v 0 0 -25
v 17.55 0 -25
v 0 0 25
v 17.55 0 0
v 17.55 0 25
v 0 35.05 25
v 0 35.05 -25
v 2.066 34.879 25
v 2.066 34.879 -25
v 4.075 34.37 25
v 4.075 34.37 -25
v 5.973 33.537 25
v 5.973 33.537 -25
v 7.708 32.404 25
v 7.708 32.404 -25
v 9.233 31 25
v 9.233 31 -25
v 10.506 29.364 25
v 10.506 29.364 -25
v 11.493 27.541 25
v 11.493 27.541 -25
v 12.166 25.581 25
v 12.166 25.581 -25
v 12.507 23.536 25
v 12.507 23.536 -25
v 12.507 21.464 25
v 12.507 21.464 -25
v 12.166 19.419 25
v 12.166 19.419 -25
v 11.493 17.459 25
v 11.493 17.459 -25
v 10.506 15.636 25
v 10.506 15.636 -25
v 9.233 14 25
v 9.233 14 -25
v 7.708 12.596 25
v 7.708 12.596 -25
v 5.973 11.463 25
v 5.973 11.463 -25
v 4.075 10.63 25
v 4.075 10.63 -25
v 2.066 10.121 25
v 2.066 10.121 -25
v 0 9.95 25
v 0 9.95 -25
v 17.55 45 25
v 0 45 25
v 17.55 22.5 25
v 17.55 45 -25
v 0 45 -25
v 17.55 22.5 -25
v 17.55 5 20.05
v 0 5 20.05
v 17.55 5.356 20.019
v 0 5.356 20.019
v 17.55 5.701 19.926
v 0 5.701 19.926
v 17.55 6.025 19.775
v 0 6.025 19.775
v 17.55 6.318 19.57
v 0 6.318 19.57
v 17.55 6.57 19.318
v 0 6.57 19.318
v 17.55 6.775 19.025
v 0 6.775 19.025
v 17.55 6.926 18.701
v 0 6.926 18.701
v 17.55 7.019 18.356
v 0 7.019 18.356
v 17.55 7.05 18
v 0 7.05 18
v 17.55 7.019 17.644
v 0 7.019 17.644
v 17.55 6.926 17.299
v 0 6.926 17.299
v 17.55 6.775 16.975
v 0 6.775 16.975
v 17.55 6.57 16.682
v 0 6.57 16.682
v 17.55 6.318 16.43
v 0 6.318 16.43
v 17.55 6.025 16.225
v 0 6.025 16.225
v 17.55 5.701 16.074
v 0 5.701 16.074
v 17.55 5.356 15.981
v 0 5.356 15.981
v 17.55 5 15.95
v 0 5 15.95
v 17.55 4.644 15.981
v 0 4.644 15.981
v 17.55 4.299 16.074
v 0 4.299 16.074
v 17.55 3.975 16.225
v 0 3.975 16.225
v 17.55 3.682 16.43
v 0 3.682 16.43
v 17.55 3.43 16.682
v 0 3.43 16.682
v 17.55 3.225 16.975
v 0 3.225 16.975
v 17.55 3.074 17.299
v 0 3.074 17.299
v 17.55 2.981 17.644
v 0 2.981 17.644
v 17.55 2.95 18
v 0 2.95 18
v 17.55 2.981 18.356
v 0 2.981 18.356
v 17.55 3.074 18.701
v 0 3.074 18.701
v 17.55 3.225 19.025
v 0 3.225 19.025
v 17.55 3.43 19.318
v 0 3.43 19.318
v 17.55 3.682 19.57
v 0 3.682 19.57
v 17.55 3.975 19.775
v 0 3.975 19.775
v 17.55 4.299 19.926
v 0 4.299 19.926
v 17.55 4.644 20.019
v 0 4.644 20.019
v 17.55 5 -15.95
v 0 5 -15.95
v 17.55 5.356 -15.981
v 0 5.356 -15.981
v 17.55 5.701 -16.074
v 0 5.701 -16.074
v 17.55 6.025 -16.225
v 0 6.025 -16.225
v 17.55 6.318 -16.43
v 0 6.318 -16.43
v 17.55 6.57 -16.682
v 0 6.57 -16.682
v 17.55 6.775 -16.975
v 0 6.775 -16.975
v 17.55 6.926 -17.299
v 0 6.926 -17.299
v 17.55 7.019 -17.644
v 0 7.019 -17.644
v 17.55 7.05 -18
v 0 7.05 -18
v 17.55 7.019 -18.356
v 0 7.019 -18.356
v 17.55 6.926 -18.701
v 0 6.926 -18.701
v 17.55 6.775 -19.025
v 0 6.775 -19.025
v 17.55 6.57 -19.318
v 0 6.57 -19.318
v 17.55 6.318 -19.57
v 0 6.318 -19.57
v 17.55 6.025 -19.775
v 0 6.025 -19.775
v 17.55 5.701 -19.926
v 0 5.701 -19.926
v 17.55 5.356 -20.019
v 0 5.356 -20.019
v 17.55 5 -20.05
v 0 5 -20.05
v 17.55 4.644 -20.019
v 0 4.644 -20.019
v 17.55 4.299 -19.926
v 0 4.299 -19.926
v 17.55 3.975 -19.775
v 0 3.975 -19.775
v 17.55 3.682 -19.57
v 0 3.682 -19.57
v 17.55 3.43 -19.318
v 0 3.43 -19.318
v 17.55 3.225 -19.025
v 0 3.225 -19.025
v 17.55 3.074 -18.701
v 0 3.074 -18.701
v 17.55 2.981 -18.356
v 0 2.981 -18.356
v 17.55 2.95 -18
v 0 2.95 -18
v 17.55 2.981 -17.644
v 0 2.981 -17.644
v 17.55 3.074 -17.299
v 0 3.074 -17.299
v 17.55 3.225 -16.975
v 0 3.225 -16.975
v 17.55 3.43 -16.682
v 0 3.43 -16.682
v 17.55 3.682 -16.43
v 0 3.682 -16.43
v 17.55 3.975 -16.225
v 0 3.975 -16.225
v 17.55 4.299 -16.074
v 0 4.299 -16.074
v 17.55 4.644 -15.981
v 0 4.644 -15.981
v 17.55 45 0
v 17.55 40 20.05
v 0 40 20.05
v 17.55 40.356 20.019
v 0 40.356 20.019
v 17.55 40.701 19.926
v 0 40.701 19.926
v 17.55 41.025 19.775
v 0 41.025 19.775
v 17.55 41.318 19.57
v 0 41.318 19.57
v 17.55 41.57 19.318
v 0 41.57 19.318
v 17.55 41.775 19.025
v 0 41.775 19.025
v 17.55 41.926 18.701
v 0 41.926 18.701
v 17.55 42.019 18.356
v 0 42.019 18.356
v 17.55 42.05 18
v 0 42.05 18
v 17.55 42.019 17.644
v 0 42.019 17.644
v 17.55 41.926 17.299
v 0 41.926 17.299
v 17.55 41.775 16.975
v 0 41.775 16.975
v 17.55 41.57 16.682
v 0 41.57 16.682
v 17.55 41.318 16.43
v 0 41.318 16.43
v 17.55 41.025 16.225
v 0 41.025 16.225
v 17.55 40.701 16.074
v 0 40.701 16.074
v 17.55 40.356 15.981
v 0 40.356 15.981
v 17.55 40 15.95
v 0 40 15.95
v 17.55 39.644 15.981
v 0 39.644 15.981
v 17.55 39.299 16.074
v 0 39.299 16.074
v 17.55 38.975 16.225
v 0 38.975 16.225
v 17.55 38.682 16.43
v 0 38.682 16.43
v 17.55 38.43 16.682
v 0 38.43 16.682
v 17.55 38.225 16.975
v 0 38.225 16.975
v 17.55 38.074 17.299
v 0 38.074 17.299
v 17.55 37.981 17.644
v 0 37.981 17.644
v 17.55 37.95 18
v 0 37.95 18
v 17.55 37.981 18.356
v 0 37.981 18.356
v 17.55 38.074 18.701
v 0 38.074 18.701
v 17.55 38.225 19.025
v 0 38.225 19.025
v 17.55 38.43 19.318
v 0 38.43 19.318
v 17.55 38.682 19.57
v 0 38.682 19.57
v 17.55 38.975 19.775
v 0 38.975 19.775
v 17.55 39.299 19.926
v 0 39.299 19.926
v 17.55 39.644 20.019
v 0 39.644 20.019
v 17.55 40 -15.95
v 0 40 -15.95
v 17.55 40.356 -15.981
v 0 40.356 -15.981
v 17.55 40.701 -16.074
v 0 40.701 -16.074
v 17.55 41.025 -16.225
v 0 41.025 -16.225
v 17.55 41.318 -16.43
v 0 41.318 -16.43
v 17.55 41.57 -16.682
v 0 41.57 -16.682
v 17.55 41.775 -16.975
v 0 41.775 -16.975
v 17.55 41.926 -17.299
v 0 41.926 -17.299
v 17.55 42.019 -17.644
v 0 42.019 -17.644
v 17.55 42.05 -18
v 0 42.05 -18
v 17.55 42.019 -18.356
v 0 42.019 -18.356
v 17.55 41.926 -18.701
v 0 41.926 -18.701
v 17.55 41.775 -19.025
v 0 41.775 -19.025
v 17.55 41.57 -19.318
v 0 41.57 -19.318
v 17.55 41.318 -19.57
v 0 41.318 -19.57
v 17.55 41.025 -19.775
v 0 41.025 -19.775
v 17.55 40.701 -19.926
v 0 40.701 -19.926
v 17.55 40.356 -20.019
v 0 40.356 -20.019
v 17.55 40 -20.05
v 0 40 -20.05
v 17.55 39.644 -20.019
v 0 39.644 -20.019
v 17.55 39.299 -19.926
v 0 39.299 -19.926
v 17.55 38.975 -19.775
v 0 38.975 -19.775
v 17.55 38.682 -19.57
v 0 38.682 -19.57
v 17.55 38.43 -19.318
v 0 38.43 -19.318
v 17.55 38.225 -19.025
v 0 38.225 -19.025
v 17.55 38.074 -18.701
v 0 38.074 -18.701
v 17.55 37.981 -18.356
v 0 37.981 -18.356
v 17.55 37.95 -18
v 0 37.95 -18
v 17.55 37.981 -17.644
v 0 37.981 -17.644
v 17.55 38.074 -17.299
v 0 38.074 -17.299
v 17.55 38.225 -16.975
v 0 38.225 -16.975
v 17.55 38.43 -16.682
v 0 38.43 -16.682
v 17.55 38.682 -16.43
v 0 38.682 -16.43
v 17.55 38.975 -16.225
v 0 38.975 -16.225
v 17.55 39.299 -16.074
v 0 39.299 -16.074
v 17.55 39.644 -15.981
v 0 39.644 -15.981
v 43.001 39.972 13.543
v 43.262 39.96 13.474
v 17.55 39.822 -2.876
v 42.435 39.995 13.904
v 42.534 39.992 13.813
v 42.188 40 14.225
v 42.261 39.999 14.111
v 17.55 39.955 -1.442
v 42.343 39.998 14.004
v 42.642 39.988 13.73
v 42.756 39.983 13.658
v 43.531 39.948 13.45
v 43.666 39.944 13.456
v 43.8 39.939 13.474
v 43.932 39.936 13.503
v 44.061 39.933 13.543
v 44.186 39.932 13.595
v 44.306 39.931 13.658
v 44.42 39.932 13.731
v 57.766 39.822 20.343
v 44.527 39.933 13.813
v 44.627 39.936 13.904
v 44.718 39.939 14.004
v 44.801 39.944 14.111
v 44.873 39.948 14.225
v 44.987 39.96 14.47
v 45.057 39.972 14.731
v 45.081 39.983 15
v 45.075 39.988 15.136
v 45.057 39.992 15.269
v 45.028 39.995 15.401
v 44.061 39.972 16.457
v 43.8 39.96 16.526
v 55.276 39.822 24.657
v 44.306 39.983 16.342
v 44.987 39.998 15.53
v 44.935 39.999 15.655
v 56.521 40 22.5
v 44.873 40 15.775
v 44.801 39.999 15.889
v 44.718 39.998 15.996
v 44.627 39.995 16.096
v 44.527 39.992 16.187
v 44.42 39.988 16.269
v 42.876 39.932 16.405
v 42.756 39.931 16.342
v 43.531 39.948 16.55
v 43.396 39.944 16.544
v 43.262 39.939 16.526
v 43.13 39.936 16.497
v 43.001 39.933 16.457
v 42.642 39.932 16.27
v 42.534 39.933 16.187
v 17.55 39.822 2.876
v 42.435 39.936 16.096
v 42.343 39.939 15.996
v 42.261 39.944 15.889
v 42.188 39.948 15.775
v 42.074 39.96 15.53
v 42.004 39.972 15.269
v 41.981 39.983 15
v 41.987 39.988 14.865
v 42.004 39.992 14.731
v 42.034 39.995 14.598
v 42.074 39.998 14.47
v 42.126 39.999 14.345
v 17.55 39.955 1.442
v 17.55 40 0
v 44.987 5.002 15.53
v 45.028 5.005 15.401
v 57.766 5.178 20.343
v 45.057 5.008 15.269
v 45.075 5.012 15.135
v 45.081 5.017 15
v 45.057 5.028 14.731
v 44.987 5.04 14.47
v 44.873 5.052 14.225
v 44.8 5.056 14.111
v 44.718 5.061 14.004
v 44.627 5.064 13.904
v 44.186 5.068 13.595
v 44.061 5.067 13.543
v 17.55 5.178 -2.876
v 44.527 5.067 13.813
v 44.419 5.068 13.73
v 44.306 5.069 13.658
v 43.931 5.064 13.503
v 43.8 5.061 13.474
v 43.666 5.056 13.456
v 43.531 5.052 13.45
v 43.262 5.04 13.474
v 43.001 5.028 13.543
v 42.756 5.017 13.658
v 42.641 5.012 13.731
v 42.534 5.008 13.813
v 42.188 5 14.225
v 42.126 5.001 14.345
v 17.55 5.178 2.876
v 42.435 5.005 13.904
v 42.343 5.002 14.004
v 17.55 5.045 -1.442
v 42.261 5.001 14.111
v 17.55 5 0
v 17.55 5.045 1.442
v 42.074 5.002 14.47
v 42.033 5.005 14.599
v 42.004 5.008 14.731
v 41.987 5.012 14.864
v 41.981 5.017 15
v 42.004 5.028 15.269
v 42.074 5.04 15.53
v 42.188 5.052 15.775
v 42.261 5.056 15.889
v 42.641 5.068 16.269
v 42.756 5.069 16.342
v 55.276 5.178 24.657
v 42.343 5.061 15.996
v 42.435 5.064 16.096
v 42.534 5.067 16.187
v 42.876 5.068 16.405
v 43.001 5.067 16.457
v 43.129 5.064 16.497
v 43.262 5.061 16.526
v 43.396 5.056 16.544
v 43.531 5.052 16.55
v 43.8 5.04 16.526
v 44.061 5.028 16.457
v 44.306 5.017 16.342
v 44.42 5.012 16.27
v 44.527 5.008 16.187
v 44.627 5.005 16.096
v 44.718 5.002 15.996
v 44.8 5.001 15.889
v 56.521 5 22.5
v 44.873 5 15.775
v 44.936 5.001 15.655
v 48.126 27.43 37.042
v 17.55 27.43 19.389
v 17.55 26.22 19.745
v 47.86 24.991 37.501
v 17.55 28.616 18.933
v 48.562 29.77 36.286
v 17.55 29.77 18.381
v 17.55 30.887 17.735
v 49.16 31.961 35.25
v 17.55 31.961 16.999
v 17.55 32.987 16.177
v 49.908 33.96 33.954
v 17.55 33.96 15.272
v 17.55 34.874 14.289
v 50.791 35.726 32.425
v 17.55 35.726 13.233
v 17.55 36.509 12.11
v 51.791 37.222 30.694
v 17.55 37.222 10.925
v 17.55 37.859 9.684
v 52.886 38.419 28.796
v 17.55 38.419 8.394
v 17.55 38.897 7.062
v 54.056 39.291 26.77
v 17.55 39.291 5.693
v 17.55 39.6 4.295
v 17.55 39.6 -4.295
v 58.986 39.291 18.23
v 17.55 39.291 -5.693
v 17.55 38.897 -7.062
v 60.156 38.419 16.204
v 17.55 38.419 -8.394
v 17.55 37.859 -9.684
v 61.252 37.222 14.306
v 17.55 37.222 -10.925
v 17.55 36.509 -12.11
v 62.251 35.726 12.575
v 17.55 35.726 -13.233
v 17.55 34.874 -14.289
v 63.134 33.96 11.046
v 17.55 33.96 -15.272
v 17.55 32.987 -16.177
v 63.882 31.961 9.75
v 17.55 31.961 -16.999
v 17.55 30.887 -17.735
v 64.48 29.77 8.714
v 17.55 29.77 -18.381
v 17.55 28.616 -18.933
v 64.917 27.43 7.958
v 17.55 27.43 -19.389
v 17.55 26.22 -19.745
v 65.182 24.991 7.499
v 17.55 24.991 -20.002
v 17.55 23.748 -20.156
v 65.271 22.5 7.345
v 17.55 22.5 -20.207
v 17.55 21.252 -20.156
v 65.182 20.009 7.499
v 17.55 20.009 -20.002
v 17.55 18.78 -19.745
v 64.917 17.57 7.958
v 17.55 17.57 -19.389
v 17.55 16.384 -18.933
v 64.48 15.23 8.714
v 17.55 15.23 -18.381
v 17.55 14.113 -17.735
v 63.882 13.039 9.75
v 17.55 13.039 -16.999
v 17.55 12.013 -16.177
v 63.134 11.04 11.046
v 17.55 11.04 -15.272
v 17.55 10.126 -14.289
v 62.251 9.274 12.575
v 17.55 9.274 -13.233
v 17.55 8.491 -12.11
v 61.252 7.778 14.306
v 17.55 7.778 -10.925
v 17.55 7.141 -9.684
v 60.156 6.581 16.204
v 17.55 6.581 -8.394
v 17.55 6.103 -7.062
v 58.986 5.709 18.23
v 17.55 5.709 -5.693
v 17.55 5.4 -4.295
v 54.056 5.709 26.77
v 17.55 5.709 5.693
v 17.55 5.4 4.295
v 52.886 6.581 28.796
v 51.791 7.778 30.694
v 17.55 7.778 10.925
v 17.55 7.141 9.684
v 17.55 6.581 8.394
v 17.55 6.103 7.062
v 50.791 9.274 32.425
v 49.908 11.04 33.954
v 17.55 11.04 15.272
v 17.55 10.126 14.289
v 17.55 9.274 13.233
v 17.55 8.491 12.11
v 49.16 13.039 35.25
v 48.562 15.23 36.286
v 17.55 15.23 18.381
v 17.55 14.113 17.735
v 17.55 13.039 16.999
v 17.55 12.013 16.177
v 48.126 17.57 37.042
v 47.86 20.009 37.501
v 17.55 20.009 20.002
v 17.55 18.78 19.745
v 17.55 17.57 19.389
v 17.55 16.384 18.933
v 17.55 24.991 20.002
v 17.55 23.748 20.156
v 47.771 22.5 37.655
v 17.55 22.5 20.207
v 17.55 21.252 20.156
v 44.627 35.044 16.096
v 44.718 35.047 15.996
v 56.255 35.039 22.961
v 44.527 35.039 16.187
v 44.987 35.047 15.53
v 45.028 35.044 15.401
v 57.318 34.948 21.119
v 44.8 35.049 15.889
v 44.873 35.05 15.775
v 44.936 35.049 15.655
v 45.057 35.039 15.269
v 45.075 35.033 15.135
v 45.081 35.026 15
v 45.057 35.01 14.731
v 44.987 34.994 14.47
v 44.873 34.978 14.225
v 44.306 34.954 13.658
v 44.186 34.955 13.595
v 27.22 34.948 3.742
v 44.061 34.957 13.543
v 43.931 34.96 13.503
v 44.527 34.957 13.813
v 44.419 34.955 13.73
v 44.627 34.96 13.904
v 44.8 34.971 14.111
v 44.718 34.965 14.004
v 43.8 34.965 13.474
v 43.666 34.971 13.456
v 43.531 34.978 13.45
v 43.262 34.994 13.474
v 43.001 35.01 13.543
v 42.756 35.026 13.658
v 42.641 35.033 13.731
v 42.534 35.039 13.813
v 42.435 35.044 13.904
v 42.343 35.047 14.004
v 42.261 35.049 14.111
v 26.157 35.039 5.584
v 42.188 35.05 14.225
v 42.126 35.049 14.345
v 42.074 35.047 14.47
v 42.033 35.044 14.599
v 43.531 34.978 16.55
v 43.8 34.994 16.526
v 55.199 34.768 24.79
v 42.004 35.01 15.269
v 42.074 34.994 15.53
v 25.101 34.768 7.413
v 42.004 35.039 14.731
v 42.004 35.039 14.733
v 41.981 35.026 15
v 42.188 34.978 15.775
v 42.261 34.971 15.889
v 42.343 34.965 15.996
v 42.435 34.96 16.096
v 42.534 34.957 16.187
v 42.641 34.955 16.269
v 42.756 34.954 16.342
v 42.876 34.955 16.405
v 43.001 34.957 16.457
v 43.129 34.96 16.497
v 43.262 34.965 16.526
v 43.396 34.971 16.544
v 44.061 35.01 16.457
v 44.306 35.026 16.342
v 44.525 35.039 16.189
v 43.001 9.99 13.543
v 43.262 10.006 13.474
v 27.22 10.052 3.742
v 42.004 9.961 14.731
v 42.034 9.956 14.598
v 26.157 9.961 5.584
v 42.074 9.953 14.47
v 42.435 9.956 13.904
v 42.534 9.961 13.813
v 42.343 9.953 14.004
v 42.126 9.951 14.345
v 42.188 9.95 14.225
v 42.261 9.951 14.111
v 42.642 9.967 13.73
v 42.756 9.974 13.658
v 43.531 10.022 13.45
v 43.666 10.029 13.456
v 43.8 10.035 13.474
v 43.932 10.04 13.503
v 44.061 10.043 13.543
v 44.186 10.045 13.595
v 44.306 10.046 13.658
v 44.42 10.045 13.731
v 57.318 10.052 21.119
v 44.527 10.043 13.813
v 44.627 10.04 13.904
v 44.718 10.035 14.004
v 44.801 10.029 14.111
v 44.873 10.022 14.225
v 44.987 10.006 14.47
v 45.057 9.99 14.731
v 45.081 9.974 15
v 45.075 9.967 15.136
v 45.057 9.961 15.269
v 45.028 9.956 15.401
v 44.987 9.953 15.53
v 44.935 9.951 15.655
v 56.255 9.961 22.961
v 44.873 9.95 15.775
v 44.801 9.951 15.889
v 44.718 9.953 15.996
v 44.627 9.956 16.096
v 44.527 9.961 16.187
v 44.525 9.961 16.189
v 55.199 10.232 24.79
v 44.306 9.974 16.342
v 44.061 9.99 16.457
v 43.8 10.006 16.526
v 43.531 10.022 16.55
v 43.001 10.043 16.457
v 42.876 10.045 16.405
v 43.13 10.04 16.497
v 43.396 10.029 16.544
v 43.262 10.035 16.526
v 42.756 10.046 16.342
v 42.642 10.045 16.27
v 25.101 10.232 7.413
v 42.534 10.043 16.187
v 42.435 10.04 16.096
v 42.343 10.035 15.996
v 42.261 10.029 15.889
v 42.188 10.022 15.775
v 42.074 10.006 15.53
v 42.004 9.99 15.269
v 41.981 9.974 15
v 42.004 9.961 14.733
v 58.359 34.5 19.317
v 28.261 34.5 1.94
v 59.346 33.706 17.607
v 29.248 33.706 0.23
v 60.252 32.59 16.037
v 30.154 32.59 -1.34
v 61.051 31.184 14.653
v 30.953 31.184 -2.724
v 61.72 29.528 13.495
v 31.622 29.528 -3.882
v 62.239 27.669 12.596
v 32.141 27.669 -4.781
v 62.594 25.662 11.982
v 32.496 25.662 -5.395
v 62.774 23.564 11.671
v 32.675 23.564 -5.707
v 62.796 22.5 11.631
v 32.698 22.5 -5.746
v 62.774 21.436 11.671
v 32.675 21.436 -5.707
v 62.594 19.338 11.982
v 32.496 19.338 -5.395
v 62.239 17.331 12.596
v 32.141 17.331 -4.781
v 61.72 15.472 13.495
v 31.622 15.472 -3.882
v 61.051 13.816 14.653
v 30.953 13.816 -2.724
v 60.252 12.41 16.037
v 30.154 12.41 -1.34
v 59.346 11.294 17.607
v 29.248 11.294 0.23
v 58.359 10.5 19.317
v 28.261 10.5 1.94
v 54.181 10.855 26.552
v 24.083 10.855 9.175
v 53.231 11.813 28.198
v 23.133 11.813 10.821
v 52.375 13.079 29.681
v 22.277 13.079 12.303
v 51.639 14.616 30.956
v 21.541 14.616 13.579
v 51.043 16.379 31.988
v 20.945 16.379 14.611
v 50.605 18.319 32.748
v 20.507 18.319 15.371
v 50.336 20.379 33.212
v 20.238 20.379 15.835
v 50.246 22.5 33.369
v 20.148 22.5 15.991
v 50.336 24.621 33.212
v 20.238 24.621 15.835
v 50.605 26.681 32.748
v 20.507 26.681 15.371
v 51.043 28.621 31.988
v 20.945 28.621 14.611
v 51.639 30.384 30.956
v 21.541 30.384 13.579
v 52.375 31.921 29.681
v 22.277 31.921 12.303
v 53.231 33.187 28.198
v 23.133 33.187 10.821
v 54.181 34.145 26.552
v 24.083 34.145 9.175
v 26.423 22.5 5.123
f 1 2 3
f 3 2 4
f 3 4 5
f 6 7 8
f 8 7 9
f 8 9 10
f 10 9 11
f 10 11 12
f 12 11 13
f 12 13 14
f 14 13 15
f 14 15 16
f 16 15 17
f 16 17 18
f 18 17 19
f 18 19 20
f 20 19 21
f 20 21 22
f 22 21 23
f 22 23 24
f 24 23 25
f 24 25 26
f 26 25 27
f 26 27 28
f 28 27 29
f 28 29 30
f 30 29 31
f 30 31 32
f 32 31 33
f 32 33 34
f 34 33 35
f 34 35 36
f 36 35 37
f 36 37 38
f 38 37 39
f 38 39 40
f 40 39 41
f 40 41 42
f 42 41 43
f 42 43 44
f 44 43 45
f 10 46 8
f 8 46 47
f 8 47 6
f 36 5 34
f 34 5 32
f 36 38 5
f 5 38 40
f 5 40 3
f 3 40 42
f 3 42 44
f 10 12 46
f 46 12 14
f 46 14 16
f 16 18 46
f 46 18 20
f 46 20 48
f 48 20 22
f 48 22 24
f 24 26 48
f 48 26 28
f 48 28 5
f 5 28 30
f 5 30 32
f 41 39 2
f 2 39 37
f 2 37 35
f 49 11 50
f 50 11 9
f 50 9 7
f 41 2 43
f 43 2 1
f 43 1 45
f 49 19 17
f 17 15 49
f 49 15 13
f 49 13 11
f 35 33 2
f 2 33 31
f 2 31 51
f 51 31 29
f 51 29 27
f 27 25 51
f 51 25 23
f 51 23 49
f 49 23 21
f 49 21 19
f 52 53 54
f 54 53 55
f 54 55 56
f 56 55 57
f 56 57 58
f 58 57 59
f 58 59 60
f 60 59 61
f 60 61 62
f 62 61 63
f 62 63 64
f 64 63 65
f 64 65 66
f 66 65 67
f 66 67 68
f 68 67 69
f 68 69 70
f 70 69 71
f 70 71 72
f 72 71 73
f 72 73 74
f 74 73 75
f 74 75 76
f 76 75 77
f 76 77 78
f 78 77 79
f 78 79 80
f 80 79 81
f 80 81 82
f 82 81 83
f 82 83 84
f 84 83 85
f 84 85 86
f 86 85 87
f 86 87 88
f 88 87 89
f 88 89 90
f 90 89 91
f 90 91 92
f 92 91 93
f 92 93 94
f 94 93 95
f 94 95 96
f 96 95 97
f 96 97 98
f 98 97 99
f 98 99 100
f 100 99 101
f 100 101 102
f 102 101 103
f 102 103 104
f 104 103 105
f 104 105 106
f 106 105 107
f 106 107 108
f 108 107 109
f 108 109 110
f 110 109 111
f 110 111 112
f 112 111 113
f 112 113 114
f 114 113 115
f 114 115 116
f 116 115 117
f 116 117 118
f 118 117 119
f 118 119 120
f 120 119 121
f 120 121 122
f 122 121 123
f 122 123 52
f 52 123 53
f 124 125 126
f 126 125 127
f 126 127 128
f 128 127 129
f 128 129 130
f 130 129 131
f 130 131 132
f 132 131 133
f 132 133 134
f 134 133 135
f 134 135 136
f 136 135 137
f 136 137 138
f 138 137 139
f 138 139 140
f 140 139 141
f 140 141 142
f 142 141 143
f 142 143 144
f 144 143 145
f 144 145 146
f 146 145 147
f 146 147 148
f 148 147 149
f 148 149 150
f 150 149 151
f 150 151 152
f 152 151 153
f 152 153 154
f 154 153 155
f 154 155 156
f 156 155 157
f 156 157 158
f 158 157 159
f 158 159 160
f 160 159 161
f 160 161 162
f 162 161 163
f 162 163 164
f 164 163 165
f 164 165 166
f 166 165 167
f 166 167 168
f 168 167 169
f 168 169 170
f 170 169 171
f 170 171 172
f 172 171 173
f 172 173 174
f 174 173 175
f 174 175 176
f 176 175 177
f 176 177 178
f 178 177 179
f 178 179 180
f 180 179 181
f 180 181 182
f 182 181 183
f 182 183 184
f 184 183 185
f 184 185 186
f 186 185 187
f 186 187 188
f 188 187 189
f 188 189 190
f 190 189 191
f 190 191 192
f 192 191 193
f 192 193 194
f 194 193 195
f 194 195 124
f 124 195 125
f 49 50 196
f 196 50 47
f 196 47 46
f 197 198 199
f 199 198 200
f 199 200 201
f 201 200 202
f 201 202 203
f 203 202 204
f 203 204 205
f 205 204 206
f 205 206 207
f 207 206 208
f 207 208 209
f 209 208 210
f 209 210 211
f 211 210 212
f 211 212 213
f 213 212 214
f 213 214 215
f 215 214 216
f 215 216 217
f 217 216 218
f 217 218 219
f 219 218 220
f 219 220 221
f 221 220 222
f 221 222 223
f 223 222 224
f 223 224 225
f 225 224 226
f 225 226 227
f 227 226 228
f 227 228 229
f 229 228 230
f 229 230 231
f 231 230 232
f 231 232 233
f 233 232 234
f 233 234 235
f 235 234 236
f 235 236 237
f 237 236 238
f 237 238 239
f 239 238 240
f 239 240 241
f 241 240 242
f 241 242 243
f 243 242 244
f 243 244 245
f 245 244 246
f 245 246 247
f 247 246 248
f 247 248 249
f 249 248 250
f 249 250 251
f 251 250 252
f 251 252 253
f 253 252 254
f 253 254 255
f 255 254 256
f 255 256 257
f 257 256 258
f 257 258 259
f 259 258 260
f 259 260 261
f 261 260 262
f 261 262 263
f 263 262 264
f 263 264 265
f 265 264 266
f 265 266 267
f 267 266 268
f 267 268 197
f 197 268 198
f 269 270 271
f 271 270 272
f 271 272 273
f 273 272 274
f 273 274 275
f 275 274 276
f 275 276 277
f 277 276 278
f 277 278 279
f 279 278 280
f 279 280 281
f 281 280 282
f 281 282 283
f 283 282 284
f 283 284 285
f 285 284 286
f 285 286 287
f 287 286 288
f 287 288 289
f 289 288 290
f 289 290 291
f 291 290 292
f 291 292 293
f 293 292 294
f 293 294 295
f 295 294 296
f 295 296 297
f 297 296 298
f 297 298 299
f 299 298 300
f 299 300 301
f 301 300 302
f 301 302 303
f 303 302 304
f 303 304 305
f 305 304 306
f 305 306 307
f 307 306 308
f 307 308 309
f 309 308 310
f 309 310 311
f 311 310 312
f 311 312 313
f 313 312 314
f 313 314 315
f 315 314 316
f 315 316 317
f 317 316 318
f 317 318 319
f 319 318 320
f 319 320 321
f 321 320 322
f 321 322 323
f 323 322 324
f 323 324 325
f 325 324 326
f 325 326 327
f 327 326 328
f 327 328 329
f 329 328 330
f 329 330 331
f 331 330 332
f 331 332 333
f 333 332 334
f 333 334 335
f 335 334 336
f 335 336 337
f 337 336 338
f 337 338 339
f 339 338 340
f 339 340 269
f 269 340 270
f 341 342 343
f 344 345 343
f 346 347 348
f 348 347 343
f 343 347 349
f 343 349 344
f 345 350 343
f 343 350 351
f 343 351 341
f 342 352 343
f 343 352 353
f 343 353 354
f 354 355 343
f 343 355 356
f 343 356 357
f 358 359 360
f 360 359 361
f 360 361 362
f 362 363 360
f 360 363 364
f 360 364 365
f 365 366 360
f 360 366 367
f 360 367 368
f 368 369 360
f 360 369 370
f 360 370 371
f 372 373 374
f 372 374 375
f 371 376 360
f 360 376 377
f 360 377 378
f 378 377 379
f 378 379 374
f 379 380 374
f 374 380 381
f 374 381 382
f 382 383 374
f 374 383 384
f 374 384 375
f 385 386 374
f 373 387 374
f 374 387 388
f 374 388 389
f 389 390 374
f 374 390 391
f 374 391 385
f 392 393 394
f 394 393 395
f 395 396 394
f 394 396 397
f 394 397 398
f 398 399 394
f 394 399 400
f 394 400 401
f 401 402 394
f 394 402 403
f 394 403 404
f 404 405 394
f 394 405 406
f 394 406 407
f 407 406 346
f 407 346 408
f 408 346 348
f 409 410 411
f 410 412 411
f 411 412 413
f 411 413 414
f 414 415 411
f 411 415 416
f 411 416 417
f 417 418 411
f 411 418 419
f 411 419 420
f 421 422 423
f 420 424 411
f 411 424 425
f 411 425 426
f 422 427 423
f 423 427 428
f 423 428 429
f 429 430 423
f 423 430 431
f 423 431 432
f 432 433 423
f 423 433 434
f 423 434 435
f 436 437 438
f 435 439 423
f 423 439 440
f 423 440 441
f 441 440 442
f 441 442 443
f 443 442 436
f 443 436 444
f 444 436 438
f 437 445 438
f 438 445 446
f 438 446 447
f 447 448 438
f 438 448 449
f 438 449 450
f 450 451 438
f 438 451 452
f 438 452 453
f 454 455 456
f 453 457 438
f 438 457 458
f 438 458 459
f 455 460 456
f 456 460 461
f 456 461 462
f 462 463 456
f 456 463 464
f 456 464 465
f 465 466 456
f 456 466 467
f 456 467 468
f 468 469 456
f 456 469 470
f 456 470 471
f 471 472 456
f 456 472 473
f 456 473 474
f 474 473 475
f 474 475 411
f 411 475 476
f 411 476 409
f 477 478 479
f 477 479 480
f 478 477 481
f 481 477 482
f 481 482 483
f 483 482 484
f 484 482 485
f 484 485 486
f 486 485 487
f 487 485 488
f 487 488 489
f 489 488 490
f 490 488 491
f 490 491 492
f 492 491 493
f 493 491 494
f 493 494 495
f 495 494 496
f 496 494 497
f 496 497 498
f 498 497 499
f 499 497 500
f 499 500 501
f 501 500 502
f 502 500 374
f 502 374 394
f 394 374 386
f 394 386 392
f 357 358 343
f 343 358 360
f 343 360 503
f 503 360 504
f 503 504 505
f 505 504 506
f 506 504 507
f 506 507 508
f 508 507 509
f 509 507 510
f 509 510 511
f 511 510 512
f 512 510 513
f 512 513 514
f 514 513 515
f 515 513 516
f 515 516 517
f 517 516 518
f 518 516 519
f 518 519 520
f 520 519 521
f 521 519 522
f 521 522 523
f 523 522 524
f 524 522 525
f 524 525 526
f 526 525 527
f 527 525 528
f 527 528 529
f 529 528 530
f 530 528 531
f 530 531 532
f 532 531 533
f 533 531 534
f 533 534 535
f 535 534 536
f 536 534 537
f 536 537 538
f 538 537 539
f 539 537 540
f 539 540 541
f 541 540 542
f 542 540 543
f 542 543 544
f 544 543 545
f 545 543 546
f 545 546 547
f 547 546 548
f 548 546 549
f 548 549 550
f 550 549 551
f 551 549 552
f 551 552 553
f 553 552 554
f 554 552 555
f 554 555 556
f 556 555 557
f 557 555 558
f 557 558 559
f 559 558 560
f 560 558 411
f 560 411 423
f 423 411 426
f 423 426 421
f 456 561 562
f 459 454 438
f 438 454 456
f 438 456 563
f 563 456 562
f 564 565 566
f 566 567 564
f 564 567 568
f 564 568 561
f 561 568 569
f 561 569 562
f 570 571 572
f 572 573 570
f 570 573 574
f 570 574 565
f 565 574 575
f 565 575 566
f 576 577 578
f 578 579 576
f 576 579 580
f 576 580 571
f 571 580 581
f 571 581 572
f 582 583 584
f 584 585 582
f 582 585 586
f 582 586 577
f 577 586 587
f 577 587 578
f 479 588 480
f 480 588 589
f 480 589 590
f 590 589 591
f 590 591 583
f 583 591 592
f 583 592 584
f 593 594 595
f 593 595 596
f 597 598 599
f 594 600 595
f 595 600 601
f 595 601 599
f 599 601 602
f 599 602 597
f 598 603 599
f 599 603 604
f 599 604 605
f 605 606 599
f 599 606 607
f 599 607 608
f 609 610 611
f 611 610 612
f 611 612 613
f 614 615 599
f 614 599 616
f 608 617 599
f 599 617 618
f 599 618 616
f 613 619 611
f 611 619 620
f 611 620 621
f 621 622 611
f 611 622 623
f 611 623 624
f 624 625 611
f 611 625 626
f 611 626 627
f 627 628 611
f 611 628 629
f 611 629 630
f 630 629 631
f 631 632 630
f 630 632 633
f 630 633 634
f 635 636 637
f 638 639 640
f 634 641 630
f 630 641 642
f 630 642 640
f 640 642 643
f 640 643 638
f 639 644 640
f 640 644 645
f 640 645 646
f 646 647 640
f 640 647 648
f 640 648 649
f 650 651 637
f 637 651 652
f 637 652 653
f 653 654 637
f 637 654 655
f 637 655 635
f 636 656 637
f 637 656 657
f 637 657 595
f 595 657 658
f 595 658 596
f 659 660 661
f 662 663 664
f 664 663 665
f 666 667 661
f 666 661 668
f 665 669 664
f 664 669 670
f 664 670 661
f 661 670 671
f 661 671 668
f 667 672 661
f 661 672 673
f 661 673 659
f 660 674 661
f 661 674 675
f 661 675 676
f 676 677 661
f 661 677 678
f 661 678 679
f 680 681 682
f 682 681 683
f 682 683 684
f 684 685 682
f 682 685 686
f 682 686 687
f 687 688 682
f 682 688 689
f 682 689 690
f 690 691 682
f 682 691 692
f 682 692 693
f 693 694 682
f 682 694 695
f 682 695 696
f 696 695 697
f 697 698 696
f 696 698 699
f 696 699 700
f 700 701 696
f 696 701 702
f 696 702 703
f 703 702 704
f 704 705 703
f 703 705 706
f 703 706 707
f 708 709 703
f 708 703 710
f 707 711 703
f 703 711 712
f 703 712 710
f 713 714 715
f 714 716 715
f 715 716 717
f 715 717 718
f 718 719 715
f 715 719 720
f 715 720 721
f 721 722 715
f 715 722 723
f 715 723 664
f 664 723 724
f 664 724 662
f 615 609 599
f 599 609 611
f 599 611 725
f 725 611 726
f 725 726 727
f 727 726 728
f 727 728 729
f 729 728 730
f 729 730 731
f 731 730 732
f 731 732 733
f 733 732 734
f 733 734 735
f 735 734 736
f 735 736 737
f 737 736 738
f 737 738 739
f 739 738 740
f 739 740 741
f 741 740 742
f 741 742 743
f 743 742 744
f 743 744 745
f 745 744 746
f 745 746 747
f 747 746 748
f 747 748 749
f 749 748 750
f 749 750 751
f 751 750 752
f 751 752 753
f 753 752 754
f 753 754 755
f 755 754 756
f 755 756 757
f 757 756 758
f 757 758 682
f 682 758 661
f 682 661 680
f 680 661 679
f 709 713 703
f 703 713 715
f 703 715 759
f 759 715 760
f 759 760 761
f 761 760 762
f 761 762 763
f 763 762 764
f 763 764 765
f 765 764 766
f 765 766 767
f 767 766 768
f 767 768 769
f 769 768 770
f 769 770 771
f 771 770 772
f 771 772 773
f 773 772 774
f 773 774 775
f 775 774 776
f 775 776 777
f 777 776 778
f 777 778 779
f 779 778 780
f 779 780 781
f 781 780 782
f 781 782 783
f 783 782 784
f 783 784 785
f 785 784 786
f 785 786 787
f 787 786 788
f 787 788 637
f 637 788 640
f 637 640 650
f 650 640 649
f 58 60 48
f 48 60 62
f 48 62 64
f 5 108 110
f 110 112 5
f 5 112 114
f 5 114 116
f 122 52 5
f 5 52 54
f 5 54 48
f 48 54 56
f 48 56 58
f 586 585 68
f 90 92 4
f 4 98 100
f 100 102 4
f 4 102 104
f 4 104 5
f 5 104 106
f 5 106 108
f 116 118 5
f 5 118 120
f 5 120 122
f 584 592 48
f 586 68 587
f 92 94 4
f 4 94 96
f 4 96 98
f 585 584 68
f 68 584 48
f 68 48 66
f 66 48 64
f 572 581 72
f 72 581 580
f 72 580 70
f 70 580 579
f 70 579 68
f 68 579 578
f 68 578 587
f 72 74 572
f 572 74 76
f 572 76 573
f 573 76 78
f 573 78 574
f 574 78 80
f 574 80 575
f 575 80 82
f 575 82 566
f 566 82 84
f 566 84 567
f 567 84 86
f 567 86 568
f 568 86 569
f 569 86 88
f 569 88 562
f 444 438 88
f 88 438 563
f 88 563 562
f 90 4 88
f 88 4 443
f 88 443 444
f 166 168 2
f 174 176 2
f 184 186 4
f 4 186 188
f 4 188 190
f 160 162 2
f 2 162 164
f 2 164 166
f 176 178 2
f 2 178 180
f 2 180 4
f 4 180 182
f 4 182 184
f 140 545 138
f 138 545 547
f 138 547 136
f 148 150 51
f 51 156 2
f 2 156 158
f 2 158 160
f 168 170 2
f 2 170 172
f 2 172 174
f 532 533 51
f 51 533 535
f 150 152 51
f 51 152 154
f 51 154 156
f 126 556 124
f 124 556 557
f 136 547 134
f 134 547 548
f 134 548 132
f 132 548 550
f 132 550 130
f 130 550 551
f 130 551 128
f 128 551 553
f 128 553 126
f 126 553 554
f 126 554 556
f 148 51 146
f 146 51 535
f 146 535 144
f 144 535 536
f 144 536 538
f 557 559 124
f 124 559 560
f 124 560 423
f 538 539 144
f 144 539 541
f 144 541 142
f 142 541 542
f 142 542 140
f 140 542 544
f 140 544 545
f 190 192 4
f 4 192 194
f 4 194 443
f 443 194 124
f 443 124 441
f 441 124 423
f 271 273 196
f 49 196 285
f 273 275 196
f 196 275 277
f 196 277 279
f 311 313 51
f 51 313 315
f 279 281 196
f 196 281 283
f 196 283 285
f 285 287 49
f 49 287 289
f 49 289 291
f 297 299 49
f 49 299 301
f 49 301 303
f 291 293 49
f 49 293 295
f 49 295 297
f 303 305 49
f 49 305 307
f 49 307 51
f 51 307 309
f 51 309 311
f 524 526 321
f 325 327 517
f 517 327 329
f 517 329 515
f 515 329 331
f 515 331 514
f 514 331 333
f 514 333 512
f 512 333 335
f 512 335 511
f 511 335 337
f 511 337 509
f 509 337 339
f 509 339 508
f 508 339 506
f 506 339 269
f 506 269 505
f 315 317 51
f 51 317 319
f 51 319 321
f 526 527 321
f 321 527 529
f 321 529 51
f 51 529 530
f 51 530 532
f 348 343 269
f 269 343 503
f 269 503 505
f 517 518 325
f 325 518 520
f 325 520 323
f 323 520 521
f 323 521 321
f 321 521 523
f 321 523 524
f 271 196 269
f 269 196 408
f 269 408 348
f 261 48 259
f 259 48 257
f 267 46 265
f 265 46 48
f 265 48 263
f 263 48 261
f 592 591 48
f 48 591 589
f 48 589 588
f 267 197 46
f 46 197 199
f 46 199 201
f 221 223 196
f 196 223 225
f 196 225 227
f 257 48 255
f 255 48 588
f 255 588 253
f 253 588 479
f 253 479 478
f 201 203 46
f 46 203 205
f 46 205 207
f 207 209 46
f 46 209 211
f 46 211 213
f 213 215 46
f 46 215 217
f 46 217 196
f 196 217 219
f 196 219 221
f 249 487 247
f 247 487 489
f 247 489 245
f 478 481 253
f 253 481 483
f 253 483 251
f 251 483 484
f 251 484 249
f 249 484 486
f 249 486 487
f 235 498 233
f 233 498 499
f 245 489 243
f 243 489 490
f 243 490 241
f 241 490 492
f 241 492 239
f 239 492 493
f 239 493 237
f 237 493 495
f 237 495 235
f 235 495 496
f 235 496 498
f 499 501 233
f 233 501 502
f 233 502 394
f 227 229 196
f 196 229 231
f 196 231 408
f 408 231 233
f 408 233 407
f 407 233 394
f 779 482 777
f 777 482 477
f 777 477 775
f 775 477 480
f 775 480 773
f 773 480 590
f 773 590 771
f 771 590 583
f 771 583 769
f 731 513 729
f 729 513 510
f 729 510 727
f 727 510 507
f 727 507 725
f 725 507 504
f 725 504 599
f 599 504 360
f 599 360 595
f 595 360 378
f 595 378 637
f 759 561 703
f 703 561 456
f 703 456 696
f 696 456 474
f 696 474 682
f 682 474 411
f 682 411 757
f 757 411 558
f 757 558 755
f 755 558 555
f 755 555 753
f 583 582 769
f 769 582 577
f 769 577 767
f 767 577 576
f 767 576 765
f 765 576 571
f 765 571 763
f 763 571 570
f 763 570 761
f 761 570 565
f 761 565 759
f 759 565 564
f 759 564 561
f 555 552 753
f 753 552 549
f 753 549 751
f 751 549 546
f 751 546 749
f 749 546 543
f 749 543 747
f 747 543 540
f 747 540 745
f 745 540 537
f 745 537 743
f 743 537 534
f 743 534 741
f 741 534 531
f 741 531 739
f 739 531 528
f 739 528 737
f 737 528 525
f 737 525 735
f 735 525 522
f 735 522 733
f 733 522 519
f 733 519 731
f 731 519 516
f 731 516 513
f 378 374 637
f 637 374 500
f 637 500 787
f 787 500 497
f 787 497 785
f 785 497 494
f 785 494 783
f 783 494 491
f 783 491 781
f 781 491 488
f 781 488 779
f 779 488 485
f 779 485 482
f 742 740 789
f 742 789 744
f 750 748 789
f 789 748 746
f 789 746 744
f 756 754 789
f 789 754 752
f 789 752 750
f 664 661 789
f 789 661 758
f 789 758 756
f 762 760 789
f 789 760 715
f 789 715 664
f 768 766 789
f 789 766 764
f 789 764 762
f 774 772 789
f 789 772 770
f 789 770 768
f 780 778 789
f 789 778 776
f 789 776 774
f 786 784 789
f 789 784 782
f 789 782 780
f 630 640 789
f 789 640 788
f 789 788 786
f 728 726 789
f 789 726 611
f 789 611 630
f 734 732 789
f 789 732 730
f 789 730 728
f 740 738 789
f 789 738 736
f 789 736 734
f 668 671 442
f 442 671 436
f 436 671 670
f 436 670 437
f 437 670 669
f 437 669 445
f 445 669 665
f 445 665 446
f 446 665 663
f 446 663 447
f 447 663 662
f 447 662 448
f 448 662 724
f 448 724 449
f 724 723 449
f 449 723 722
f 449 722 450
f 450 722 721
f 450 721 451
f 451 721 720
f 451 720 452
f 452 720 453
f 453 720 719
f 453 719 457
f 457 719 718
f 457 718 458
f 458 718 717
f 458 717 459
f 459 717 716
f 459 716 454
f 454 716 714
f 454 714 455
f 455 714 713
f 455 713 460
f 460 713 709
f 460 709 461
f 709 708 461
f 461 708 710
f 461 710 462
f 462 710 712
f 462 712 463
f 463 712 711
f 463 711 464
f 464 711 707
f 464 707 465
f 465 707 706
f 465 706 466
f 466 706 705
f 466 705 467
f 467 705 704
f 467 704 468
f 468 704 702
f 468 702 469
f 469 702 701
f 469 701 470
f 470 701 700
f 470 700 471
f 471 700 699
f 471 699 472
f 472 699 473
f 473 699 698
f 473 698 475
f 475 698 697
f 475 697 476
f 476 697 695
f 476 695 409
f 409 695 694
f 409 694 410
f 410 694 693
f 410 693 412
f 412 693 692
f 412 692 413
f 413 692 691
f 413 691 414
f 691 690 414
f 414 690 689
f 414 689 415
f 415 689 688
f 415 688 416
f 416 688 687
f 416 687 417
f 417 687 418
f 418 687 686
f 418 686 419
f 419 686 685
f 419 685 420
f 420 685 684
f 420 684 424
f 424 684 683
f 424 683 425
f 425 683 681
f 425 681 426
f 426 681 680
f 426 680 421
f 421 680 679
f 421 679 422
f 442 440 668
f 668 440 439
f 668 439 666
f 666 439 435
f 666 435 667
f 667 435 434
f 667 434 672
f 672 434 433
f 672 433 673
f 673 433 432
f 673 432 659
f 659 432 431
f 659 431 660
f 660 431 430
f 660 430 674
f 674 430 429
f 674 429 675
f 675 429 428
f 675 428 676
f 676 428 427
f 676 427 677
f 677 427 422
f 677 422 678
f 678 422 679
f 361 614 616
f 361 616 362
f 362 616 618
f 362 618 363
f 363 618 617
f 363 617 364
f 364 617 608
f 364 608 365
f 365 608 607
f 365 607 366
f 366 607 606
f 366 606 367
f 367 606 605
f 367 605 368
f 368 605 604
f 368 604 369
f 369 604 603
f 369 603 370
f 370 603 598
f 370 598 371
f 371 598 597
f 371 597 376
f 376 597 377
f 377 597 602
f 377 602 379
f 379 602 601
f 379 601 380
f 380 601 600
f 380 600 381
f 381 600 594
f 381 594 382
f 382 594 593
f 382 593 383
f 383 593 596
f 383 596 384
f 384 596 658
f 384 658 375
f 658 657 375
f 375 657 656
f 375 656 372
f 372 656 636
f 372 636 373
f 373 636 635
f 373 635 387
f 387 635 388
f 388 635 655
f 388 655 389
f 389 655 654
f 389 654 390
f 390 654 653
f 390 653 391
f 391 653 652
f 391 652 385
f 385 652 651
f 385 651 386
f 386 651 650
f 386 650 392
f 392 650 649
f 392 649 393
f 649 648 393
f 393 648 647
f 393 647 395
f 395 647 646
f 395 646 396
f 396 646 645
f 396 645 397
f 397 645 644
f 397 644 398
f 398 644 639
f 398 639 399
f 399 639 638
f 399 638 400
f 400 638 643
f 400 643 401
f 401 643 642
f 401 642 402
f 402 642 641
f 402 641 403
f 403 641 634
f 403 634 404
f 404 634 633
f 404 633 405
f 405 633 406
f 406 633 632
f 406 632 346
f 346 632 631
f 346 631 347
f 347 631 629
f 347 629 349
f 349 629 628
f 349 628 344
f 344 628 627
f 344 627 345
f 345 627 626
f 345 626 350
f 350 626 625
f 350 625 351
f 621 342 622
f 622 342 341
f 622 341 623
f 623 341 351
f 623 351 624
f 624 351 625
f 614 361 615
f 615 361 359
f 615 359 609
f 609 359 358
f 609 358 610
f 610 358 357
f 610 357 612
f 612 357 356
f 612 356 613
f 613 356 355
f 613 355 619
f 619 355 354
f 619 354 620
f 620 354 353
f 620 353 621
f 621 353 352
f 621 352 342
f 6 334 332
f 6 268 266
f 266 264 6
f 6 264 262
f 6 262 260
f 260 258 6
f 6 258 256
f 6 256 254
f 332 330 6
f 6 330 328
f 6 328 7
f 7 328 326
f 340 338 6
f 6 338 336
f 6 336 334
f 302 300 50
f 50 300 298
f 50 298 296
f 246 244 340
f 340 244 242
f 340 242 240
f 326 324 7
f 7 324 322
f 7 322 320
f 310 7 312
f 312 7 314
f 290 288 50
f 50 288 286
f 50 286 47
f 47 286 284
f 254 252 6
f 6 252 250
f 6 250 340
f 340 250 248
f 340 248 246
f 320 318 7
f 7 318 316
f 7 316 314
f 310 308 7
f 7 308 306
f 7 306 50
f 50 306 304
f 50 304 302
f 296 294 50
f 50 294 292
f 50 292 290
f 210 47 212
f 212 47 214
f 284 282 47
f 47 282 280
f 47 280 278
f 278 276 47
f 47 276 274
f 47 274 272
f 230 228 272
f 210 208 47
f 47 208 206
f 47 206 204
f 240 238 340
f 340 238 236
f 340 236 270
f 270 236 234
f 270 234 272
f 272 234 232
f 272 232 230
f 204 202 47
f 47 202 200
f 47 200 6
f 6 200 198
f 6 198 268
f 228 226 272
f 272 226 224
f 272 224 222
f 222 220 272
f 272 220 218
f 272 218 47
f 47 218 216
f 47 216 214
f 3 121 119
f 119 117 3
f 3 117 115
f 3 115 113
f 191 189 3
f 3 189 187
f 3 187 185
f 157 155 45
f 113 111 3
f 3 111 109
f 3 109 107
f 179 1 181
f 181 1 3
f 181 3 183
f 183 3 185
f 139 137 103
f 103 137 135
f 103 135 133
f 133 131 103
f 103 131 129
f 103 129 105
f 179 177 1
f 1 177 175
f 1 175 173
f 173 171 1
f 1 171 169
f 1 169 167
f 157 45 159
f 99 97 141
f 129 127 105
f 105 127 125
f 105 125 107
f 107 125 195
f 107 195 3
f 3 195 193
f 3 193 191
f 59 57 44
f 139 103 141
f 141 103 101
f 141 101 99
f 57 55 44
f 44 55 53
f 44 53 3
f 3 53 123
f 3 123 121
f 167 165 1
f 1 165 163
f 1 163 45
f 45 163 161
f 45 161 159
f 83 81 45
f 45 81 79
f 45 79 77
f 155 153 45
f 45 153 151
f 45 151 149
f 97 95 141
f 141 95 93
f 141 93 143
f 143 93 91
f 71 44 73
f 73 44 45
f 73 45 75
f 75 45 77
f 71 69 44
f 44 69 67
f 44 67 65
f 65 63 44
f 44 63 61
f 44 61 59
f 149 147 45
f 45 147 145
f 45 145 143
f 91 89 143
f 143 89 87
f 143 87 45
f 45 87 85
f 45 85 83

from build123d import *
from build123d.topology import SkipClean

# Parameters (mm, degrees)
BOSS_EXTRUDE1_DEPTH             = 25
BOSS_EXTRUDE2_REACH             = 65.436
BOSS_EXTRUDE2_DIRECTION_2_DEPTH = 30
SKETCH9_R                       = 2.05
CUT_EXTRUDE3_DEPTH              = 35.1
BOSS_EXTRUDE5_REACH             = 63.632
SKETCH13_R                      = 1.55
CUT_EXTRUDE4_DEPTH              = 88.768186926
SKETCH16_W                      = 50
SKETCH16_H                      = 45
CUT_EXTRUDE5_DEPTH              = 17.55


with BuildPart() as part:
    # Sketch1 → Boss-Extrude1 (new, symmetric)
    with BuildSketch(Plane.XY):
        with BuildLine():
            Line((-17.55, 22.5), (-17.55, 0))
            Line((-17.55, 0), (17.55, 0))
            Line((17.55, 0), (17.55, 22.5))
            Line((17.55, 22.5), (12.55, 22.5))
            ThreePointArc((12.55, 22.5), (0, 9.95), (-12.55, 22.5))
            Line((-12.55, 22.5), (-17.55, 22.5))
        make_face()
    boss_extrude1 = extrude(amount=BOSS_EXTRUDE1_DEPTH, both=True)

    # Boss-Extrude2: up to this face of the body (flat: up to its plane)
    boss_extrude2_end = Plane(part.part.faces().sort_by_distance((17.55, 11.25, 0))[0])
    # Sketch5 → Boss-Extrude2 (add, up to the picked face)
    with BuildSketch(Plane(origin=(26.152881057, 0, 15.099372918), x_dir=(0.500000000000001, 0, -0.8660254037844382), z_dir=(0.8660254037844382, 0, 0.500000000000001)), mode=Mode.PRIVATE) as boss_extrude2_sk1:
        with BuildLine():
            Line((-8.725, 22.5), (-3.775, 22.5))
            ThreePointArc((-3.775, 22.5), (8.775, 9.95), (21.325, 22.5))
            Line((21.325, 22.5), (26.275, 22.5))
            ThreePointArc((26.275, 22.5), (8.775, 5), (-8.725, 22.5))
        make_face()
    boss_extrude2_tool1 = split(extrude(boss_extrude2_sk1.sketch, amount=-BOSS_EXTRUDE2_REACH, mode=Mode.PRIVATE), bisect_by=boss_extrude2_end, keep=Keep.BOTH, mode=Mode.PRIVATE)
    boss_extrude2 = boss_extrude2_tool1.solids().sort_by(Axis((23.027881, 22.108688, 20.512032), (-0.8660254037844382, 0, -0.500000000000001)))[0]
    add(boss_extrude2)

    # Sketch5 → Boss-Extrude2 direction 2 (add)
    with BuildSketch(Plane(origin=(26.152881057, 0, 15.099372918), x_dir=(0.500000000000001, 0, -0.8660254037844382), z_dir=(0.8660254037844382, 0, 0.500000000000001))):
        with BuildLine():
            Line((-8.725, 22.5), (-3.775, 22.5))
            ThreePointArc((-3.775, 22.5), (8.775, 9.95), (21.325, 22.5))
            Line((21.325, 22.5), (26.275, 22.5))
            ThreePointArc((26.275, 22.5), (8.775, 5), (-8.725, 22.5))
        make_face()
    boss_extrude2_direction_2 = extrude(amount=BOSS_EXTRUDE2_DIRECTION_2_DEPTH)

    # Sketch9 → Cut-Extrude3 (cut)
    with BuildSketch(Plane.ZY.offset(17.55)):
        with Locations((-18, 5)):
            Circle(SKETCH9_R)
        with Locations((18, 5)):
            Circle(SKETCH9_R)
    cut_extrude3 = extrude(amount=-CUT_EXTRUDE3_DEPTH, mode=Mode.SUBTRACT)

    # Boss-Extrude5: up to this face of the body (flat: up to its plane)
    boss_extrude5_end = Plane(part.part.faces().sort_by_distance((17.55, 17.173614571, 0))[0])
    # Sketch12 → Boss-Extrude5 (add, up to the picked face)
    with BuildSketch(Plane(origin=(22.035576211, 0, 12.722245857), x_dir=(0.4999999999999999, 0, -0.8660254037844388), z_dir=(0.8660254037844388, 0, 0.4999999999999999)), mode=Mode.PRIVATE) as boss_extrude5_sk1:
        with BuildLine():
            Line((-3.775, 22.5), (21.325, 22.5))
            ThreePointArc((21.325, 22.5), (8.775, 9.95), (-3.775, 22.5))
        make_face()
    boss_extrude5_tool1 = split(extrude(boss_extrude5_sk1.sketch, amount=-BOSS_EXTRUDE5_REACH, mode=Mode.PRIVATE), bisect_by=boss_extrude5_end, keep=Keep.BOTH, mode=Mode.PRIVATE)
    boss_extrude5 = boss_extrude5_tool1.solids().sort_by(Axis((26.423076, 17.173615, 5.122873), (-0.8660254037844388, 0, -0.4999999999999999)))[0]
    add(boss_extrude5)


with BuildPart() as mirror1_1:
    # Mirror1: Boss-Extrude1, Boss-Extrude2, Boss-Extrude2 direction 2 across plane
    add(boss_extrude1.mirror(Plane(origin=(17.55, 22.5, 25), x_dir=(0, 0, 1), z_dir=(0, -1, 0))))
    add(boss_extrude2.mirror(Plane(origin=(17.55, 22.5, 25), x_dir=(0, 0, 1), z_dir=(0, -1, 0))))
    add(boss_extrude2_direction_2.mirror(Plane(origin=(17.55, 22.5, 25), x_dir=(0, 0, 1), z_dir=(0, -1, 0))))

    # Mirror1 2: Cut-Extrude3 across plane
    add(cut_extrude3.mirror(Plane(origin=(17.55, 22.5, 25), x_dir=(0, 0, 1), z_dir=(0, -1, 0))), mode=Mode.SUBTRACT)


with BuildPart() as mirror1_3_1:
    # Mirror1 3: Boss-Extrude5 across plane
    add(boss_extrude5.mirror(Plane(origin=(17.55, 22.5, 25), x_dir=(0, 0, 1), z_dir=(0, -1, 0))))


with BuildPart() as part_1:
    add(part.part)

    # Mirror1 united with what the copies touc: union Mirror1_1, Mirror1 3_1
    add(mirror1_1.part)
    add(mirror1_3_1.part)

    # Sketch13 → Cut-Extrude4 (cut, through all)
    with SkipClean():  # the faces are left unmerged after this step: merging them gives an invalid solid
        with BuildSketch(Plane(origin=(0, 0, 0), x_dir=(1, 0, 0), z_dir=(0, 1, 0))):
            with Locations(Location((43.530762114, -15, 0), (0, 0, 90))):
                Circle(SKETCH13_R)
        extrude(amount=CUT_EXTRUDE4_DEPTH, mode=Mode.SUBTRACT)

    # Sketch16 → Cut-Extrude5 (cut)
    with BuildSketch(Plane(origin=(0, 0, 0), x_dir=(0, 0, -1), z_dir=(1, 0, 0))):
        with Locations((0, 22.5)):
            Rectangle(SKETCH16_W, SKETCH16_H)
    extrude(amount=-CUT_EXTRUDE5_DEPTH, mode=Mode.SUBTRACT)


solid = part_1.part
